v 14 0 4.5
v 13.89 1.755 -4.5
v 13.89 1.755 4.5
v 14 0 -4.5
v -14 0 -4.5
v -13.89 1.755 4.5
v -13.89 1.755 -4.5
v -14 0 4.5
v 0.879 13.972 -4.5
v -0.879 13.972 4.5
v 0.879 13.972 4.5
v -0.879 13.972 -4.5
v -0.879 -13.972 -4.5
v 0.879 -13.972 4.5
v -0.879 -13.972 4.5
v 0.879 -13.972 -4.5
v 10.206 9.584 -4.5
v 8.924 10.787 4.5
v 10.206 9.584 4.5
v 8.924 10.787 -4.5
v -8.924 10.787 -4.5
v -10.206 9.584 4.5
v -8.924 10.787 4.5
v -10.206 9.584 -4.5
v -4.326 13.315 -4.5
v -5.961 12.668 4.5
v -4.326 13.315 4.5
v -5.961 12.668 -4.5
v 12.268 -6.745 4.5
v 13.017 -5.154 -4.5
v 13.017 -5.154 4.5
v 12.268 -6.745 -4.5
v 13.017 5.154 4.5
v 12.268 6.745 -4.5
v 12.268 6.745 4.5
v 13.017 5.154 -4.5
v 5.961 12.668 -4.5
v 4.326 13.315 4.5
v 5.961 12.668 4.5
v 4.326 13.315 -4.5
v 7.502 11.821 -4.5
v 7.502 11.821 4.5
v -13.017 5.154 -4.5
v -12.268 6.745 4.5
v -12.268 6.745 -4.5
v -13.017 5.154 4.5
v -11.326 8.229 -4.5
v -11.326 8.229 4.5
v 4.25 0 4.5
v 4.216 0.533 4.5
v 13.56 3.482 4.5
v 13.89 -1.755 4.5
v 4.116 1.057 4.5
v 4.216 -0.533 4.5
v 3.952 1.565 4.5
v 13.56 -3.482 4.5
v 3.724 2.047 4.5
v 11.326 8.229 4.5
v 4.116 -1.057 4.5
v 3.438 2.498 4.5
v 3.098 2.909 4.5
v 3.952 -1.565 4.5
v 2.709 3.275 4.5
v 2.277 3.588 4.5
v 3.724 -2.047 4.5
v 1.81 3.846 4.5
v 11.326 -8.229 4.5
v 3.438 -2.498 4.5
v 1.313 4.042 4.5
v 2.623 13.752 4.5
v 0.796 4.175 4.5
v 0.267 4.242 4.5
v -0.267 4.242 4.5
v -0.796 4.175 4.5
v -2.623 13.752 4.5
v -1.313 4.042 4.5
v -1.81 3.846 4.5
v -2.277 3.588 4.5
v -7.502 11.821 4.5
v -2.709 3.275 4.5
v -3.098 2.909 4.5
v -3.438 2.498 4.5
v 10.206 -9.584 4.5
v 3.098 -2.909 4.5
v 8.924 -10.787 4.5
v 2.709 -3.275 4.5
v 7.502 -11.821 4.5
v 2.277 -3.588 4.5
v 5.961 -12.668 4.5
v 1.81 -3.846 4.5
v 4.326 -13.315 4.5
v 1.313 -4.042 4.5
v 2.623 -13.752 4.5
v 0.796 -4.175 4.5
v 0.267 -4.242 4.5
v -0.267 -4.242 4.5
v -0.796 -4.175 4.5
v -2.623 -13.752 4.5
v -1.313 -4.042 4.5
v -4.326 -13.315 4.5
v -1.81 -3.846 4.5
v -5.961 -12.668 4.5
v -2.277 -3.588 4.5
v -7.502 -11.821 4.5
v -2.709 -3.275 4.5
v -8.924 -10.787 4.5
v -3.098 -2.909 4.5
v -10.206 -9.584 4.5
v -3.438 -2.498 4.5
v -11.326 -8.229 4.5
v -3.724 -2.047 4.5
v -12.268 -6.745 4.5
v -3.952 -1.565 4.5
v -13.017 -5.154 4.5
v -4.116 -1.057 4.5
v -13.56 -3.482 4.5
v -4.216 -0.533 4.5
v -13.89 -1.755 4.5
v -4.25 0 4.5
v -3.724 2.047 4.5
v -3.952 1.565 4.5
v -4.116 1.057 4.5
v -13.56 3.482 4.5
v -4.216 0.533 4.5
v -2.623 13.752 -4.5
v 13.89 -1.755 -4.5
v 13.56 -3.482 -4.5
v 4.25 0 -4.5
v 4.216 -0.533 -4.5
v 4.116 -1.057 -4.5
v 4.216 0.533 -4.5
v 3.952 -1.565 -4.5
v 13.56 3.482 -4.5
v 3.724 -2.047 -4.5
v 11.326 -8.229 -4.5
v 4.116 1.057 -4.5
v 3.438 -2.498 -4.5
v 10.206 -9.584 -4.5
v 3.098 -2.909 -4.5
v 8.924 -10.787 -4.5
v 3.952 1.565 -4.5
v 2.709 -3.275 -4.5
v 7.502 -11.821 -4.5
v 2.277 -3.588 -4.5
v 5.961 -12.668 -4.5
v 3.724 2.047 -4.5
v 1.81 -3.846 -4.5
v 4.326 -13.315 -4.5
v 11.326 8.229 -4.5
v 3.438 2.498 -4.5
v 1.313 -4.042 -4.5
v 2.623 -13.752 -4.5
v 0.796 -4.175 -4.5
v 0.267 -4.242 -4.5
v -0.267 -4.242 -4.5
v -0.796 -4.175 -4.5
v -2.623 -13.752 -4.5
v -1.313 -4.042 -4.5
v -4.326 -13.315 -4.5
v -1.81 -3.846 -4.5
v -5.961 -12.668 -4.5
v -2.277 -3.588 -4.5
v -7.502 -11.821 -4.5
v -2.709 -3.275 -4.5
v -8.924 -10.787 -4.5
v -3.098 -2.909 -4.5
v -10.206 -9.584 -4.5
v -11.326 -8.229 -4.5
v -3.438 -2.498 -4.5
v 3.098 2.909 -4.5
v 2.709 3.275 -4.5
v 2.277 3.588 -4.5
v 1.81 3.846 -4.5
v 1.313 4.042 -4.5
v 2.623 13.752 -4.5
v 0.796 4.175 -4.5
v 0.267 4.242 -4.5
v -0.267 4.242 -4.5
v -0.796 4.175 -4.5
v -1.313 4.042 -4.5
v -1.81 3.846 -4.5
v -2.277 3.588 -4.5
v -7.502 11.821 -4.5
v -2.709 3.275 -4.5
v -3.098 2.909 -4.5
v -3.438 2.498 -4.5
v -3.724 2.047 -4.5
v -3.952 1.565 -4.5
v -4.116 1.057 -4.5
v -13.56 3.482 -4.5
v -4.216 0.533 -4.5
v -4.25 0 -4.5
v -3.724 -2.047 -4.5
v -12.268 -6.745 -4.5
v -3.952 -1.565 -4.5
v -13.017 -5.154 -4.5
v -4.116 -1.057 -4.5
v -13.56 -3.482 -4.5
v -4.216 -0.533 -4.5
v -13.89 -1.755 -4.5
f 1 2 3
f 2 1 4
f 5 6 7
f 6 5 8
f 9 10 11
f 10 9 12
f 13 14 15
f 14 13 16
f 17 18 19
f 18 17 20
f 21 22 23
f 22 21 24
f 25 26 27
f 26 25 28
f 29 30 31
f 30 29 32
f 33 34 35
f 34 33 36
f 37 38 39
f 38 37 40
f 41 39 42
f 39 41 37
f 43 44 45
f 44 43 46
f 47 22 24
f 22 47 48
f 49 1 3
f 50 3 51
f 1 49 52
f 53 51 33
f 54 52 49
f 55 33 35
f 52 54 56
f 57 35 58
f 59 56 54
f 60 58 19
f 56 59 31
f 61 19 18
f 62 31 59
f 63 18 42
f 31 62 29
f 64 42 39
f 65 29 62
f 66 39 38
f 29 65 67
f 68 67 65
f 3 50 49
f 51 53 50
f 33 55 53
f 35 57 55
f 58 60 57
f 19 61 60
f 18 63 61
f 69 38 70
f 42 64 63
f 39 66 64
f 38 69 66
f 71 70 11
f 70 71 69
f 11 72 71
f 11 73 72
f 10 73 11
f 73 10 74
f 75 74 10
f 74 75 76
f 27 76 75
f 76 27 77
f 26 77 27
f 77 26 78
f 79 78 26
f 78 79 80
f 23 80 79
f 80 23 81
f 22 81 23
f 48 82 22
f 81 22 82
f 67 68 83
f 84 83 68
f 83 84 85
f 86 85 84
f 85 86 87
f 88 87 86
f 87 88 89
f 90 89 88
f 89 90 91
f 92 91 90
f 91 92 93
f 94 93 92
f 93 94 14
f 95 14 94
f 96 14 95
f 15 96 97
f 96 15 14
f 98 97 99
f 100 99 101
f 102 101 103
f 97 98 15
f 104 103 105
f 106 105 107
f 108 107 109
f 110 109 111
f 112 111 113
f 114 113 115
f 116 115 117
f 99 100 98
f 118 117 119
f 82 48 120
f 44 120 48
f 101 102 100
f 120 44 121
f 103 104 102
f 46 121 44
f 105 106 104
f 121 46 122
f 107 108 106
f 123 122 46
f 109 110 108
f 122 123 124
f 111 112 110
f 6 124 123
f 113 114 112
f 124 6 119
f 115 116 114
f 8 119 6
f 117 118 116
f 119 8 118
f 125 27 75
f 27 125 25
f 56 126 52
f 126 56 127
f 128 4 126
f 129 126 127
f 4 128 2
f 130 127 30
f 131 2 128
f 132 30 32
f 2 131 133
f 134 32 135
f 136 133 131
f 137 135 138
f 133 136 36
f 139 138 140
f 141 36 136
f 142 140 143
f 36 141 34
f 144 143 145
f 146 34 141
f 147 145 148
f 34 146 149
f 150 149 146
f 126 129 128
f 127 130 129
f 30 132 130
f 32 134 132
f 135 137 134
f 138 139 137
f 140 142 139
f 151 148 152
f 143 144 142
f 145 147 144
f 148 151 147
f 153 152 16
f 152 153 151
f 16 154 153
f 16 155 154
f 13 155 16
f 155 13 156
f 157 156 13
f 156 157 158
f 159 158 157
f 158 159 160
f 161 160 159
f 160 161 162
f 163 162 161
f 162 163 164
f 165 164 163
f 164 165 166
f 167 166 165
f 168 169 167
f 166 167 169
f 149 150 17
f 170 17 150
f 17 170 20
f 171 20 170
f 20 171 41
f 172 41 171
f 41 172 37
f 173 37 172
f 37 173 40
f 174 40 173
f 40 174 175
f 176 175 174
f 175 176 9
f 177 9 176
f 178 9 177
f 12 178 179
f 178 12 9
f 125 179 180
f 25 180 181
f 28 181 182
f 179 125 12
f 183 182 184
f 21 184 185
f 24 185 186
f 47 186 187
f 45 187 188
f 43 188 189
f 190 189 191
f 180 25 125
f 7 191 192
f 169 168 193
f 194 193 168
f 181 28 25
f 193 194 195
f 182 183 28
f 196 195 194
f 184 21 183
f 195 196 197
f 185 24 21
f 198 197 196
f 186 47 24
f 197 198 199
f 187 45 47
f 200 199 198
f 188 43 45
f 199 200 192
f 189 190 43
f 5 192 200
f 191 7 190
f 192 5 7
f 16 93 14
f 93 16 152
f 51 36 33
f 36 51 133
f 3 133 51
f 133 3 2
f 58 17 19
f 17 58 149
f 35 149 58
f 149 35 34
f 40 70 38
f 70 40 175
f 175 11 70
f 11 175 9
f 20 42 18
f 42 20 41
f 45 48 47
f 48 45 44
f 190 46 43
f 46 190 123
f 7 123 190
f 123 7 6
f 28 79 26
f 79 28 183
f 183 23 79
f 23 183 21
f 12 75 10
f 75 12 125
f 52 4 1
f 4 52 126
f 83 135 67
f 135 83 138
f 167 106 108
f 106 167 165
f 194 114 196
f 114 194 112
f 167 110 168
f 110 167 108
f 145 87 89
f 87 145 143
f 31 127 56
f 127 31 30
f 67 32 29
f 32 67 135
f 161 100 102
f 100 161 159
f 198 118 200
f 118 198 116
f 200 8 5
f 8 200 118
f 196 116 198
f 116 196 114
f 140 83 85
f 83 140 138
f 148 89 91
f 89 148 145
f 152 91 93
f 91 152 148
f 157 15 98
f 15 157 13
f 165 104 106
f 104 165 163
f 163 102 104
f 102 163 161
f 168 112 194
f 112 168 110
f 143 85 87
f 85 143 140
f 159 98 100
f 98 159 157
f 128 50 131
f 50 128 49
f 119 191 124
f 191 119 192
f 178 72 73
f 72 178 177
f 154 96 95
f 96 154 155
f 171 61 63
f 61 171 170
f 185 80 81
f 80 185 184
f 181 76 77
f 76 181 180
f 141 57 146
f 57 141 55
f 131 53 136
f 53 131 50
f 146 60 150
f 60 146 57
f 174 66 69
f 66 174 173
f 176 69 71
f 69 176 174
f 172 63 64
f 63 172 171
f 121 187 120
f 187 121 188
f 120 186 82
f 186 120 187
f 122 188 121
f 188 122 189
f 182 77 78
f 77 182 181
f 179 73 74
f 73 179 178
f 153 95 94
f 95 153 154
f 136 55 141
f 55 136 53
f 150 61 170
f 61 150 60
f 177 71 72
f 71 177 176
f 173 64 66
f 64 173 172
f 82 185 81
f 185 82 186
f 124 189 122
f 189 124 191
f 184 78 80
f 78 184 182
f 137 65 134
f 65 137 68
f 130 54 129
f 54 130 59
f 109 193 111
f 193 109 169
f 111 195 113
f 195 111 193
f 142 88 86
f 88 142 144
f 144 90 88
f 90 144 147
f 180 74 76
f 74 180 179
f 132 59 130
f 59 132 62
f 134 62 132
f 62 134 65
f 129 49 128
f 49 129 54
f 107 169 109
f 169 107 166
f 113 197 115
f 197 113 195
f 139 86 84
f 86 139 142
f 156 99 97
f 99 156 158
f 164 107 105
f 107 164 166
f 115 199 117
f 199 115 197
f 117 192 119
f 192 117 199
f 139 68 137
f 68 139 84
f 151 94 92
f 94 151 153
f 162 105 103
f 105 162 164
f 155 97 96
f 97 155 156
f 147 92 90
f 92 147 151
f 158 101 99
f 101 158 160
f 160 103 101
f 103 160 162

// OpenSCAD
$fn = 50;


difference() {
	union() {
		translate(v = [0, 0, -4.5000000000]) {
			cylinder(h = 9, r = 14.0000000000);
		}
	}
	union() {
		translate(v = [0, 0, -100.0000000000]) {
			cylinder(h = 200, r = 4.2500000000);
		}
	}
}
